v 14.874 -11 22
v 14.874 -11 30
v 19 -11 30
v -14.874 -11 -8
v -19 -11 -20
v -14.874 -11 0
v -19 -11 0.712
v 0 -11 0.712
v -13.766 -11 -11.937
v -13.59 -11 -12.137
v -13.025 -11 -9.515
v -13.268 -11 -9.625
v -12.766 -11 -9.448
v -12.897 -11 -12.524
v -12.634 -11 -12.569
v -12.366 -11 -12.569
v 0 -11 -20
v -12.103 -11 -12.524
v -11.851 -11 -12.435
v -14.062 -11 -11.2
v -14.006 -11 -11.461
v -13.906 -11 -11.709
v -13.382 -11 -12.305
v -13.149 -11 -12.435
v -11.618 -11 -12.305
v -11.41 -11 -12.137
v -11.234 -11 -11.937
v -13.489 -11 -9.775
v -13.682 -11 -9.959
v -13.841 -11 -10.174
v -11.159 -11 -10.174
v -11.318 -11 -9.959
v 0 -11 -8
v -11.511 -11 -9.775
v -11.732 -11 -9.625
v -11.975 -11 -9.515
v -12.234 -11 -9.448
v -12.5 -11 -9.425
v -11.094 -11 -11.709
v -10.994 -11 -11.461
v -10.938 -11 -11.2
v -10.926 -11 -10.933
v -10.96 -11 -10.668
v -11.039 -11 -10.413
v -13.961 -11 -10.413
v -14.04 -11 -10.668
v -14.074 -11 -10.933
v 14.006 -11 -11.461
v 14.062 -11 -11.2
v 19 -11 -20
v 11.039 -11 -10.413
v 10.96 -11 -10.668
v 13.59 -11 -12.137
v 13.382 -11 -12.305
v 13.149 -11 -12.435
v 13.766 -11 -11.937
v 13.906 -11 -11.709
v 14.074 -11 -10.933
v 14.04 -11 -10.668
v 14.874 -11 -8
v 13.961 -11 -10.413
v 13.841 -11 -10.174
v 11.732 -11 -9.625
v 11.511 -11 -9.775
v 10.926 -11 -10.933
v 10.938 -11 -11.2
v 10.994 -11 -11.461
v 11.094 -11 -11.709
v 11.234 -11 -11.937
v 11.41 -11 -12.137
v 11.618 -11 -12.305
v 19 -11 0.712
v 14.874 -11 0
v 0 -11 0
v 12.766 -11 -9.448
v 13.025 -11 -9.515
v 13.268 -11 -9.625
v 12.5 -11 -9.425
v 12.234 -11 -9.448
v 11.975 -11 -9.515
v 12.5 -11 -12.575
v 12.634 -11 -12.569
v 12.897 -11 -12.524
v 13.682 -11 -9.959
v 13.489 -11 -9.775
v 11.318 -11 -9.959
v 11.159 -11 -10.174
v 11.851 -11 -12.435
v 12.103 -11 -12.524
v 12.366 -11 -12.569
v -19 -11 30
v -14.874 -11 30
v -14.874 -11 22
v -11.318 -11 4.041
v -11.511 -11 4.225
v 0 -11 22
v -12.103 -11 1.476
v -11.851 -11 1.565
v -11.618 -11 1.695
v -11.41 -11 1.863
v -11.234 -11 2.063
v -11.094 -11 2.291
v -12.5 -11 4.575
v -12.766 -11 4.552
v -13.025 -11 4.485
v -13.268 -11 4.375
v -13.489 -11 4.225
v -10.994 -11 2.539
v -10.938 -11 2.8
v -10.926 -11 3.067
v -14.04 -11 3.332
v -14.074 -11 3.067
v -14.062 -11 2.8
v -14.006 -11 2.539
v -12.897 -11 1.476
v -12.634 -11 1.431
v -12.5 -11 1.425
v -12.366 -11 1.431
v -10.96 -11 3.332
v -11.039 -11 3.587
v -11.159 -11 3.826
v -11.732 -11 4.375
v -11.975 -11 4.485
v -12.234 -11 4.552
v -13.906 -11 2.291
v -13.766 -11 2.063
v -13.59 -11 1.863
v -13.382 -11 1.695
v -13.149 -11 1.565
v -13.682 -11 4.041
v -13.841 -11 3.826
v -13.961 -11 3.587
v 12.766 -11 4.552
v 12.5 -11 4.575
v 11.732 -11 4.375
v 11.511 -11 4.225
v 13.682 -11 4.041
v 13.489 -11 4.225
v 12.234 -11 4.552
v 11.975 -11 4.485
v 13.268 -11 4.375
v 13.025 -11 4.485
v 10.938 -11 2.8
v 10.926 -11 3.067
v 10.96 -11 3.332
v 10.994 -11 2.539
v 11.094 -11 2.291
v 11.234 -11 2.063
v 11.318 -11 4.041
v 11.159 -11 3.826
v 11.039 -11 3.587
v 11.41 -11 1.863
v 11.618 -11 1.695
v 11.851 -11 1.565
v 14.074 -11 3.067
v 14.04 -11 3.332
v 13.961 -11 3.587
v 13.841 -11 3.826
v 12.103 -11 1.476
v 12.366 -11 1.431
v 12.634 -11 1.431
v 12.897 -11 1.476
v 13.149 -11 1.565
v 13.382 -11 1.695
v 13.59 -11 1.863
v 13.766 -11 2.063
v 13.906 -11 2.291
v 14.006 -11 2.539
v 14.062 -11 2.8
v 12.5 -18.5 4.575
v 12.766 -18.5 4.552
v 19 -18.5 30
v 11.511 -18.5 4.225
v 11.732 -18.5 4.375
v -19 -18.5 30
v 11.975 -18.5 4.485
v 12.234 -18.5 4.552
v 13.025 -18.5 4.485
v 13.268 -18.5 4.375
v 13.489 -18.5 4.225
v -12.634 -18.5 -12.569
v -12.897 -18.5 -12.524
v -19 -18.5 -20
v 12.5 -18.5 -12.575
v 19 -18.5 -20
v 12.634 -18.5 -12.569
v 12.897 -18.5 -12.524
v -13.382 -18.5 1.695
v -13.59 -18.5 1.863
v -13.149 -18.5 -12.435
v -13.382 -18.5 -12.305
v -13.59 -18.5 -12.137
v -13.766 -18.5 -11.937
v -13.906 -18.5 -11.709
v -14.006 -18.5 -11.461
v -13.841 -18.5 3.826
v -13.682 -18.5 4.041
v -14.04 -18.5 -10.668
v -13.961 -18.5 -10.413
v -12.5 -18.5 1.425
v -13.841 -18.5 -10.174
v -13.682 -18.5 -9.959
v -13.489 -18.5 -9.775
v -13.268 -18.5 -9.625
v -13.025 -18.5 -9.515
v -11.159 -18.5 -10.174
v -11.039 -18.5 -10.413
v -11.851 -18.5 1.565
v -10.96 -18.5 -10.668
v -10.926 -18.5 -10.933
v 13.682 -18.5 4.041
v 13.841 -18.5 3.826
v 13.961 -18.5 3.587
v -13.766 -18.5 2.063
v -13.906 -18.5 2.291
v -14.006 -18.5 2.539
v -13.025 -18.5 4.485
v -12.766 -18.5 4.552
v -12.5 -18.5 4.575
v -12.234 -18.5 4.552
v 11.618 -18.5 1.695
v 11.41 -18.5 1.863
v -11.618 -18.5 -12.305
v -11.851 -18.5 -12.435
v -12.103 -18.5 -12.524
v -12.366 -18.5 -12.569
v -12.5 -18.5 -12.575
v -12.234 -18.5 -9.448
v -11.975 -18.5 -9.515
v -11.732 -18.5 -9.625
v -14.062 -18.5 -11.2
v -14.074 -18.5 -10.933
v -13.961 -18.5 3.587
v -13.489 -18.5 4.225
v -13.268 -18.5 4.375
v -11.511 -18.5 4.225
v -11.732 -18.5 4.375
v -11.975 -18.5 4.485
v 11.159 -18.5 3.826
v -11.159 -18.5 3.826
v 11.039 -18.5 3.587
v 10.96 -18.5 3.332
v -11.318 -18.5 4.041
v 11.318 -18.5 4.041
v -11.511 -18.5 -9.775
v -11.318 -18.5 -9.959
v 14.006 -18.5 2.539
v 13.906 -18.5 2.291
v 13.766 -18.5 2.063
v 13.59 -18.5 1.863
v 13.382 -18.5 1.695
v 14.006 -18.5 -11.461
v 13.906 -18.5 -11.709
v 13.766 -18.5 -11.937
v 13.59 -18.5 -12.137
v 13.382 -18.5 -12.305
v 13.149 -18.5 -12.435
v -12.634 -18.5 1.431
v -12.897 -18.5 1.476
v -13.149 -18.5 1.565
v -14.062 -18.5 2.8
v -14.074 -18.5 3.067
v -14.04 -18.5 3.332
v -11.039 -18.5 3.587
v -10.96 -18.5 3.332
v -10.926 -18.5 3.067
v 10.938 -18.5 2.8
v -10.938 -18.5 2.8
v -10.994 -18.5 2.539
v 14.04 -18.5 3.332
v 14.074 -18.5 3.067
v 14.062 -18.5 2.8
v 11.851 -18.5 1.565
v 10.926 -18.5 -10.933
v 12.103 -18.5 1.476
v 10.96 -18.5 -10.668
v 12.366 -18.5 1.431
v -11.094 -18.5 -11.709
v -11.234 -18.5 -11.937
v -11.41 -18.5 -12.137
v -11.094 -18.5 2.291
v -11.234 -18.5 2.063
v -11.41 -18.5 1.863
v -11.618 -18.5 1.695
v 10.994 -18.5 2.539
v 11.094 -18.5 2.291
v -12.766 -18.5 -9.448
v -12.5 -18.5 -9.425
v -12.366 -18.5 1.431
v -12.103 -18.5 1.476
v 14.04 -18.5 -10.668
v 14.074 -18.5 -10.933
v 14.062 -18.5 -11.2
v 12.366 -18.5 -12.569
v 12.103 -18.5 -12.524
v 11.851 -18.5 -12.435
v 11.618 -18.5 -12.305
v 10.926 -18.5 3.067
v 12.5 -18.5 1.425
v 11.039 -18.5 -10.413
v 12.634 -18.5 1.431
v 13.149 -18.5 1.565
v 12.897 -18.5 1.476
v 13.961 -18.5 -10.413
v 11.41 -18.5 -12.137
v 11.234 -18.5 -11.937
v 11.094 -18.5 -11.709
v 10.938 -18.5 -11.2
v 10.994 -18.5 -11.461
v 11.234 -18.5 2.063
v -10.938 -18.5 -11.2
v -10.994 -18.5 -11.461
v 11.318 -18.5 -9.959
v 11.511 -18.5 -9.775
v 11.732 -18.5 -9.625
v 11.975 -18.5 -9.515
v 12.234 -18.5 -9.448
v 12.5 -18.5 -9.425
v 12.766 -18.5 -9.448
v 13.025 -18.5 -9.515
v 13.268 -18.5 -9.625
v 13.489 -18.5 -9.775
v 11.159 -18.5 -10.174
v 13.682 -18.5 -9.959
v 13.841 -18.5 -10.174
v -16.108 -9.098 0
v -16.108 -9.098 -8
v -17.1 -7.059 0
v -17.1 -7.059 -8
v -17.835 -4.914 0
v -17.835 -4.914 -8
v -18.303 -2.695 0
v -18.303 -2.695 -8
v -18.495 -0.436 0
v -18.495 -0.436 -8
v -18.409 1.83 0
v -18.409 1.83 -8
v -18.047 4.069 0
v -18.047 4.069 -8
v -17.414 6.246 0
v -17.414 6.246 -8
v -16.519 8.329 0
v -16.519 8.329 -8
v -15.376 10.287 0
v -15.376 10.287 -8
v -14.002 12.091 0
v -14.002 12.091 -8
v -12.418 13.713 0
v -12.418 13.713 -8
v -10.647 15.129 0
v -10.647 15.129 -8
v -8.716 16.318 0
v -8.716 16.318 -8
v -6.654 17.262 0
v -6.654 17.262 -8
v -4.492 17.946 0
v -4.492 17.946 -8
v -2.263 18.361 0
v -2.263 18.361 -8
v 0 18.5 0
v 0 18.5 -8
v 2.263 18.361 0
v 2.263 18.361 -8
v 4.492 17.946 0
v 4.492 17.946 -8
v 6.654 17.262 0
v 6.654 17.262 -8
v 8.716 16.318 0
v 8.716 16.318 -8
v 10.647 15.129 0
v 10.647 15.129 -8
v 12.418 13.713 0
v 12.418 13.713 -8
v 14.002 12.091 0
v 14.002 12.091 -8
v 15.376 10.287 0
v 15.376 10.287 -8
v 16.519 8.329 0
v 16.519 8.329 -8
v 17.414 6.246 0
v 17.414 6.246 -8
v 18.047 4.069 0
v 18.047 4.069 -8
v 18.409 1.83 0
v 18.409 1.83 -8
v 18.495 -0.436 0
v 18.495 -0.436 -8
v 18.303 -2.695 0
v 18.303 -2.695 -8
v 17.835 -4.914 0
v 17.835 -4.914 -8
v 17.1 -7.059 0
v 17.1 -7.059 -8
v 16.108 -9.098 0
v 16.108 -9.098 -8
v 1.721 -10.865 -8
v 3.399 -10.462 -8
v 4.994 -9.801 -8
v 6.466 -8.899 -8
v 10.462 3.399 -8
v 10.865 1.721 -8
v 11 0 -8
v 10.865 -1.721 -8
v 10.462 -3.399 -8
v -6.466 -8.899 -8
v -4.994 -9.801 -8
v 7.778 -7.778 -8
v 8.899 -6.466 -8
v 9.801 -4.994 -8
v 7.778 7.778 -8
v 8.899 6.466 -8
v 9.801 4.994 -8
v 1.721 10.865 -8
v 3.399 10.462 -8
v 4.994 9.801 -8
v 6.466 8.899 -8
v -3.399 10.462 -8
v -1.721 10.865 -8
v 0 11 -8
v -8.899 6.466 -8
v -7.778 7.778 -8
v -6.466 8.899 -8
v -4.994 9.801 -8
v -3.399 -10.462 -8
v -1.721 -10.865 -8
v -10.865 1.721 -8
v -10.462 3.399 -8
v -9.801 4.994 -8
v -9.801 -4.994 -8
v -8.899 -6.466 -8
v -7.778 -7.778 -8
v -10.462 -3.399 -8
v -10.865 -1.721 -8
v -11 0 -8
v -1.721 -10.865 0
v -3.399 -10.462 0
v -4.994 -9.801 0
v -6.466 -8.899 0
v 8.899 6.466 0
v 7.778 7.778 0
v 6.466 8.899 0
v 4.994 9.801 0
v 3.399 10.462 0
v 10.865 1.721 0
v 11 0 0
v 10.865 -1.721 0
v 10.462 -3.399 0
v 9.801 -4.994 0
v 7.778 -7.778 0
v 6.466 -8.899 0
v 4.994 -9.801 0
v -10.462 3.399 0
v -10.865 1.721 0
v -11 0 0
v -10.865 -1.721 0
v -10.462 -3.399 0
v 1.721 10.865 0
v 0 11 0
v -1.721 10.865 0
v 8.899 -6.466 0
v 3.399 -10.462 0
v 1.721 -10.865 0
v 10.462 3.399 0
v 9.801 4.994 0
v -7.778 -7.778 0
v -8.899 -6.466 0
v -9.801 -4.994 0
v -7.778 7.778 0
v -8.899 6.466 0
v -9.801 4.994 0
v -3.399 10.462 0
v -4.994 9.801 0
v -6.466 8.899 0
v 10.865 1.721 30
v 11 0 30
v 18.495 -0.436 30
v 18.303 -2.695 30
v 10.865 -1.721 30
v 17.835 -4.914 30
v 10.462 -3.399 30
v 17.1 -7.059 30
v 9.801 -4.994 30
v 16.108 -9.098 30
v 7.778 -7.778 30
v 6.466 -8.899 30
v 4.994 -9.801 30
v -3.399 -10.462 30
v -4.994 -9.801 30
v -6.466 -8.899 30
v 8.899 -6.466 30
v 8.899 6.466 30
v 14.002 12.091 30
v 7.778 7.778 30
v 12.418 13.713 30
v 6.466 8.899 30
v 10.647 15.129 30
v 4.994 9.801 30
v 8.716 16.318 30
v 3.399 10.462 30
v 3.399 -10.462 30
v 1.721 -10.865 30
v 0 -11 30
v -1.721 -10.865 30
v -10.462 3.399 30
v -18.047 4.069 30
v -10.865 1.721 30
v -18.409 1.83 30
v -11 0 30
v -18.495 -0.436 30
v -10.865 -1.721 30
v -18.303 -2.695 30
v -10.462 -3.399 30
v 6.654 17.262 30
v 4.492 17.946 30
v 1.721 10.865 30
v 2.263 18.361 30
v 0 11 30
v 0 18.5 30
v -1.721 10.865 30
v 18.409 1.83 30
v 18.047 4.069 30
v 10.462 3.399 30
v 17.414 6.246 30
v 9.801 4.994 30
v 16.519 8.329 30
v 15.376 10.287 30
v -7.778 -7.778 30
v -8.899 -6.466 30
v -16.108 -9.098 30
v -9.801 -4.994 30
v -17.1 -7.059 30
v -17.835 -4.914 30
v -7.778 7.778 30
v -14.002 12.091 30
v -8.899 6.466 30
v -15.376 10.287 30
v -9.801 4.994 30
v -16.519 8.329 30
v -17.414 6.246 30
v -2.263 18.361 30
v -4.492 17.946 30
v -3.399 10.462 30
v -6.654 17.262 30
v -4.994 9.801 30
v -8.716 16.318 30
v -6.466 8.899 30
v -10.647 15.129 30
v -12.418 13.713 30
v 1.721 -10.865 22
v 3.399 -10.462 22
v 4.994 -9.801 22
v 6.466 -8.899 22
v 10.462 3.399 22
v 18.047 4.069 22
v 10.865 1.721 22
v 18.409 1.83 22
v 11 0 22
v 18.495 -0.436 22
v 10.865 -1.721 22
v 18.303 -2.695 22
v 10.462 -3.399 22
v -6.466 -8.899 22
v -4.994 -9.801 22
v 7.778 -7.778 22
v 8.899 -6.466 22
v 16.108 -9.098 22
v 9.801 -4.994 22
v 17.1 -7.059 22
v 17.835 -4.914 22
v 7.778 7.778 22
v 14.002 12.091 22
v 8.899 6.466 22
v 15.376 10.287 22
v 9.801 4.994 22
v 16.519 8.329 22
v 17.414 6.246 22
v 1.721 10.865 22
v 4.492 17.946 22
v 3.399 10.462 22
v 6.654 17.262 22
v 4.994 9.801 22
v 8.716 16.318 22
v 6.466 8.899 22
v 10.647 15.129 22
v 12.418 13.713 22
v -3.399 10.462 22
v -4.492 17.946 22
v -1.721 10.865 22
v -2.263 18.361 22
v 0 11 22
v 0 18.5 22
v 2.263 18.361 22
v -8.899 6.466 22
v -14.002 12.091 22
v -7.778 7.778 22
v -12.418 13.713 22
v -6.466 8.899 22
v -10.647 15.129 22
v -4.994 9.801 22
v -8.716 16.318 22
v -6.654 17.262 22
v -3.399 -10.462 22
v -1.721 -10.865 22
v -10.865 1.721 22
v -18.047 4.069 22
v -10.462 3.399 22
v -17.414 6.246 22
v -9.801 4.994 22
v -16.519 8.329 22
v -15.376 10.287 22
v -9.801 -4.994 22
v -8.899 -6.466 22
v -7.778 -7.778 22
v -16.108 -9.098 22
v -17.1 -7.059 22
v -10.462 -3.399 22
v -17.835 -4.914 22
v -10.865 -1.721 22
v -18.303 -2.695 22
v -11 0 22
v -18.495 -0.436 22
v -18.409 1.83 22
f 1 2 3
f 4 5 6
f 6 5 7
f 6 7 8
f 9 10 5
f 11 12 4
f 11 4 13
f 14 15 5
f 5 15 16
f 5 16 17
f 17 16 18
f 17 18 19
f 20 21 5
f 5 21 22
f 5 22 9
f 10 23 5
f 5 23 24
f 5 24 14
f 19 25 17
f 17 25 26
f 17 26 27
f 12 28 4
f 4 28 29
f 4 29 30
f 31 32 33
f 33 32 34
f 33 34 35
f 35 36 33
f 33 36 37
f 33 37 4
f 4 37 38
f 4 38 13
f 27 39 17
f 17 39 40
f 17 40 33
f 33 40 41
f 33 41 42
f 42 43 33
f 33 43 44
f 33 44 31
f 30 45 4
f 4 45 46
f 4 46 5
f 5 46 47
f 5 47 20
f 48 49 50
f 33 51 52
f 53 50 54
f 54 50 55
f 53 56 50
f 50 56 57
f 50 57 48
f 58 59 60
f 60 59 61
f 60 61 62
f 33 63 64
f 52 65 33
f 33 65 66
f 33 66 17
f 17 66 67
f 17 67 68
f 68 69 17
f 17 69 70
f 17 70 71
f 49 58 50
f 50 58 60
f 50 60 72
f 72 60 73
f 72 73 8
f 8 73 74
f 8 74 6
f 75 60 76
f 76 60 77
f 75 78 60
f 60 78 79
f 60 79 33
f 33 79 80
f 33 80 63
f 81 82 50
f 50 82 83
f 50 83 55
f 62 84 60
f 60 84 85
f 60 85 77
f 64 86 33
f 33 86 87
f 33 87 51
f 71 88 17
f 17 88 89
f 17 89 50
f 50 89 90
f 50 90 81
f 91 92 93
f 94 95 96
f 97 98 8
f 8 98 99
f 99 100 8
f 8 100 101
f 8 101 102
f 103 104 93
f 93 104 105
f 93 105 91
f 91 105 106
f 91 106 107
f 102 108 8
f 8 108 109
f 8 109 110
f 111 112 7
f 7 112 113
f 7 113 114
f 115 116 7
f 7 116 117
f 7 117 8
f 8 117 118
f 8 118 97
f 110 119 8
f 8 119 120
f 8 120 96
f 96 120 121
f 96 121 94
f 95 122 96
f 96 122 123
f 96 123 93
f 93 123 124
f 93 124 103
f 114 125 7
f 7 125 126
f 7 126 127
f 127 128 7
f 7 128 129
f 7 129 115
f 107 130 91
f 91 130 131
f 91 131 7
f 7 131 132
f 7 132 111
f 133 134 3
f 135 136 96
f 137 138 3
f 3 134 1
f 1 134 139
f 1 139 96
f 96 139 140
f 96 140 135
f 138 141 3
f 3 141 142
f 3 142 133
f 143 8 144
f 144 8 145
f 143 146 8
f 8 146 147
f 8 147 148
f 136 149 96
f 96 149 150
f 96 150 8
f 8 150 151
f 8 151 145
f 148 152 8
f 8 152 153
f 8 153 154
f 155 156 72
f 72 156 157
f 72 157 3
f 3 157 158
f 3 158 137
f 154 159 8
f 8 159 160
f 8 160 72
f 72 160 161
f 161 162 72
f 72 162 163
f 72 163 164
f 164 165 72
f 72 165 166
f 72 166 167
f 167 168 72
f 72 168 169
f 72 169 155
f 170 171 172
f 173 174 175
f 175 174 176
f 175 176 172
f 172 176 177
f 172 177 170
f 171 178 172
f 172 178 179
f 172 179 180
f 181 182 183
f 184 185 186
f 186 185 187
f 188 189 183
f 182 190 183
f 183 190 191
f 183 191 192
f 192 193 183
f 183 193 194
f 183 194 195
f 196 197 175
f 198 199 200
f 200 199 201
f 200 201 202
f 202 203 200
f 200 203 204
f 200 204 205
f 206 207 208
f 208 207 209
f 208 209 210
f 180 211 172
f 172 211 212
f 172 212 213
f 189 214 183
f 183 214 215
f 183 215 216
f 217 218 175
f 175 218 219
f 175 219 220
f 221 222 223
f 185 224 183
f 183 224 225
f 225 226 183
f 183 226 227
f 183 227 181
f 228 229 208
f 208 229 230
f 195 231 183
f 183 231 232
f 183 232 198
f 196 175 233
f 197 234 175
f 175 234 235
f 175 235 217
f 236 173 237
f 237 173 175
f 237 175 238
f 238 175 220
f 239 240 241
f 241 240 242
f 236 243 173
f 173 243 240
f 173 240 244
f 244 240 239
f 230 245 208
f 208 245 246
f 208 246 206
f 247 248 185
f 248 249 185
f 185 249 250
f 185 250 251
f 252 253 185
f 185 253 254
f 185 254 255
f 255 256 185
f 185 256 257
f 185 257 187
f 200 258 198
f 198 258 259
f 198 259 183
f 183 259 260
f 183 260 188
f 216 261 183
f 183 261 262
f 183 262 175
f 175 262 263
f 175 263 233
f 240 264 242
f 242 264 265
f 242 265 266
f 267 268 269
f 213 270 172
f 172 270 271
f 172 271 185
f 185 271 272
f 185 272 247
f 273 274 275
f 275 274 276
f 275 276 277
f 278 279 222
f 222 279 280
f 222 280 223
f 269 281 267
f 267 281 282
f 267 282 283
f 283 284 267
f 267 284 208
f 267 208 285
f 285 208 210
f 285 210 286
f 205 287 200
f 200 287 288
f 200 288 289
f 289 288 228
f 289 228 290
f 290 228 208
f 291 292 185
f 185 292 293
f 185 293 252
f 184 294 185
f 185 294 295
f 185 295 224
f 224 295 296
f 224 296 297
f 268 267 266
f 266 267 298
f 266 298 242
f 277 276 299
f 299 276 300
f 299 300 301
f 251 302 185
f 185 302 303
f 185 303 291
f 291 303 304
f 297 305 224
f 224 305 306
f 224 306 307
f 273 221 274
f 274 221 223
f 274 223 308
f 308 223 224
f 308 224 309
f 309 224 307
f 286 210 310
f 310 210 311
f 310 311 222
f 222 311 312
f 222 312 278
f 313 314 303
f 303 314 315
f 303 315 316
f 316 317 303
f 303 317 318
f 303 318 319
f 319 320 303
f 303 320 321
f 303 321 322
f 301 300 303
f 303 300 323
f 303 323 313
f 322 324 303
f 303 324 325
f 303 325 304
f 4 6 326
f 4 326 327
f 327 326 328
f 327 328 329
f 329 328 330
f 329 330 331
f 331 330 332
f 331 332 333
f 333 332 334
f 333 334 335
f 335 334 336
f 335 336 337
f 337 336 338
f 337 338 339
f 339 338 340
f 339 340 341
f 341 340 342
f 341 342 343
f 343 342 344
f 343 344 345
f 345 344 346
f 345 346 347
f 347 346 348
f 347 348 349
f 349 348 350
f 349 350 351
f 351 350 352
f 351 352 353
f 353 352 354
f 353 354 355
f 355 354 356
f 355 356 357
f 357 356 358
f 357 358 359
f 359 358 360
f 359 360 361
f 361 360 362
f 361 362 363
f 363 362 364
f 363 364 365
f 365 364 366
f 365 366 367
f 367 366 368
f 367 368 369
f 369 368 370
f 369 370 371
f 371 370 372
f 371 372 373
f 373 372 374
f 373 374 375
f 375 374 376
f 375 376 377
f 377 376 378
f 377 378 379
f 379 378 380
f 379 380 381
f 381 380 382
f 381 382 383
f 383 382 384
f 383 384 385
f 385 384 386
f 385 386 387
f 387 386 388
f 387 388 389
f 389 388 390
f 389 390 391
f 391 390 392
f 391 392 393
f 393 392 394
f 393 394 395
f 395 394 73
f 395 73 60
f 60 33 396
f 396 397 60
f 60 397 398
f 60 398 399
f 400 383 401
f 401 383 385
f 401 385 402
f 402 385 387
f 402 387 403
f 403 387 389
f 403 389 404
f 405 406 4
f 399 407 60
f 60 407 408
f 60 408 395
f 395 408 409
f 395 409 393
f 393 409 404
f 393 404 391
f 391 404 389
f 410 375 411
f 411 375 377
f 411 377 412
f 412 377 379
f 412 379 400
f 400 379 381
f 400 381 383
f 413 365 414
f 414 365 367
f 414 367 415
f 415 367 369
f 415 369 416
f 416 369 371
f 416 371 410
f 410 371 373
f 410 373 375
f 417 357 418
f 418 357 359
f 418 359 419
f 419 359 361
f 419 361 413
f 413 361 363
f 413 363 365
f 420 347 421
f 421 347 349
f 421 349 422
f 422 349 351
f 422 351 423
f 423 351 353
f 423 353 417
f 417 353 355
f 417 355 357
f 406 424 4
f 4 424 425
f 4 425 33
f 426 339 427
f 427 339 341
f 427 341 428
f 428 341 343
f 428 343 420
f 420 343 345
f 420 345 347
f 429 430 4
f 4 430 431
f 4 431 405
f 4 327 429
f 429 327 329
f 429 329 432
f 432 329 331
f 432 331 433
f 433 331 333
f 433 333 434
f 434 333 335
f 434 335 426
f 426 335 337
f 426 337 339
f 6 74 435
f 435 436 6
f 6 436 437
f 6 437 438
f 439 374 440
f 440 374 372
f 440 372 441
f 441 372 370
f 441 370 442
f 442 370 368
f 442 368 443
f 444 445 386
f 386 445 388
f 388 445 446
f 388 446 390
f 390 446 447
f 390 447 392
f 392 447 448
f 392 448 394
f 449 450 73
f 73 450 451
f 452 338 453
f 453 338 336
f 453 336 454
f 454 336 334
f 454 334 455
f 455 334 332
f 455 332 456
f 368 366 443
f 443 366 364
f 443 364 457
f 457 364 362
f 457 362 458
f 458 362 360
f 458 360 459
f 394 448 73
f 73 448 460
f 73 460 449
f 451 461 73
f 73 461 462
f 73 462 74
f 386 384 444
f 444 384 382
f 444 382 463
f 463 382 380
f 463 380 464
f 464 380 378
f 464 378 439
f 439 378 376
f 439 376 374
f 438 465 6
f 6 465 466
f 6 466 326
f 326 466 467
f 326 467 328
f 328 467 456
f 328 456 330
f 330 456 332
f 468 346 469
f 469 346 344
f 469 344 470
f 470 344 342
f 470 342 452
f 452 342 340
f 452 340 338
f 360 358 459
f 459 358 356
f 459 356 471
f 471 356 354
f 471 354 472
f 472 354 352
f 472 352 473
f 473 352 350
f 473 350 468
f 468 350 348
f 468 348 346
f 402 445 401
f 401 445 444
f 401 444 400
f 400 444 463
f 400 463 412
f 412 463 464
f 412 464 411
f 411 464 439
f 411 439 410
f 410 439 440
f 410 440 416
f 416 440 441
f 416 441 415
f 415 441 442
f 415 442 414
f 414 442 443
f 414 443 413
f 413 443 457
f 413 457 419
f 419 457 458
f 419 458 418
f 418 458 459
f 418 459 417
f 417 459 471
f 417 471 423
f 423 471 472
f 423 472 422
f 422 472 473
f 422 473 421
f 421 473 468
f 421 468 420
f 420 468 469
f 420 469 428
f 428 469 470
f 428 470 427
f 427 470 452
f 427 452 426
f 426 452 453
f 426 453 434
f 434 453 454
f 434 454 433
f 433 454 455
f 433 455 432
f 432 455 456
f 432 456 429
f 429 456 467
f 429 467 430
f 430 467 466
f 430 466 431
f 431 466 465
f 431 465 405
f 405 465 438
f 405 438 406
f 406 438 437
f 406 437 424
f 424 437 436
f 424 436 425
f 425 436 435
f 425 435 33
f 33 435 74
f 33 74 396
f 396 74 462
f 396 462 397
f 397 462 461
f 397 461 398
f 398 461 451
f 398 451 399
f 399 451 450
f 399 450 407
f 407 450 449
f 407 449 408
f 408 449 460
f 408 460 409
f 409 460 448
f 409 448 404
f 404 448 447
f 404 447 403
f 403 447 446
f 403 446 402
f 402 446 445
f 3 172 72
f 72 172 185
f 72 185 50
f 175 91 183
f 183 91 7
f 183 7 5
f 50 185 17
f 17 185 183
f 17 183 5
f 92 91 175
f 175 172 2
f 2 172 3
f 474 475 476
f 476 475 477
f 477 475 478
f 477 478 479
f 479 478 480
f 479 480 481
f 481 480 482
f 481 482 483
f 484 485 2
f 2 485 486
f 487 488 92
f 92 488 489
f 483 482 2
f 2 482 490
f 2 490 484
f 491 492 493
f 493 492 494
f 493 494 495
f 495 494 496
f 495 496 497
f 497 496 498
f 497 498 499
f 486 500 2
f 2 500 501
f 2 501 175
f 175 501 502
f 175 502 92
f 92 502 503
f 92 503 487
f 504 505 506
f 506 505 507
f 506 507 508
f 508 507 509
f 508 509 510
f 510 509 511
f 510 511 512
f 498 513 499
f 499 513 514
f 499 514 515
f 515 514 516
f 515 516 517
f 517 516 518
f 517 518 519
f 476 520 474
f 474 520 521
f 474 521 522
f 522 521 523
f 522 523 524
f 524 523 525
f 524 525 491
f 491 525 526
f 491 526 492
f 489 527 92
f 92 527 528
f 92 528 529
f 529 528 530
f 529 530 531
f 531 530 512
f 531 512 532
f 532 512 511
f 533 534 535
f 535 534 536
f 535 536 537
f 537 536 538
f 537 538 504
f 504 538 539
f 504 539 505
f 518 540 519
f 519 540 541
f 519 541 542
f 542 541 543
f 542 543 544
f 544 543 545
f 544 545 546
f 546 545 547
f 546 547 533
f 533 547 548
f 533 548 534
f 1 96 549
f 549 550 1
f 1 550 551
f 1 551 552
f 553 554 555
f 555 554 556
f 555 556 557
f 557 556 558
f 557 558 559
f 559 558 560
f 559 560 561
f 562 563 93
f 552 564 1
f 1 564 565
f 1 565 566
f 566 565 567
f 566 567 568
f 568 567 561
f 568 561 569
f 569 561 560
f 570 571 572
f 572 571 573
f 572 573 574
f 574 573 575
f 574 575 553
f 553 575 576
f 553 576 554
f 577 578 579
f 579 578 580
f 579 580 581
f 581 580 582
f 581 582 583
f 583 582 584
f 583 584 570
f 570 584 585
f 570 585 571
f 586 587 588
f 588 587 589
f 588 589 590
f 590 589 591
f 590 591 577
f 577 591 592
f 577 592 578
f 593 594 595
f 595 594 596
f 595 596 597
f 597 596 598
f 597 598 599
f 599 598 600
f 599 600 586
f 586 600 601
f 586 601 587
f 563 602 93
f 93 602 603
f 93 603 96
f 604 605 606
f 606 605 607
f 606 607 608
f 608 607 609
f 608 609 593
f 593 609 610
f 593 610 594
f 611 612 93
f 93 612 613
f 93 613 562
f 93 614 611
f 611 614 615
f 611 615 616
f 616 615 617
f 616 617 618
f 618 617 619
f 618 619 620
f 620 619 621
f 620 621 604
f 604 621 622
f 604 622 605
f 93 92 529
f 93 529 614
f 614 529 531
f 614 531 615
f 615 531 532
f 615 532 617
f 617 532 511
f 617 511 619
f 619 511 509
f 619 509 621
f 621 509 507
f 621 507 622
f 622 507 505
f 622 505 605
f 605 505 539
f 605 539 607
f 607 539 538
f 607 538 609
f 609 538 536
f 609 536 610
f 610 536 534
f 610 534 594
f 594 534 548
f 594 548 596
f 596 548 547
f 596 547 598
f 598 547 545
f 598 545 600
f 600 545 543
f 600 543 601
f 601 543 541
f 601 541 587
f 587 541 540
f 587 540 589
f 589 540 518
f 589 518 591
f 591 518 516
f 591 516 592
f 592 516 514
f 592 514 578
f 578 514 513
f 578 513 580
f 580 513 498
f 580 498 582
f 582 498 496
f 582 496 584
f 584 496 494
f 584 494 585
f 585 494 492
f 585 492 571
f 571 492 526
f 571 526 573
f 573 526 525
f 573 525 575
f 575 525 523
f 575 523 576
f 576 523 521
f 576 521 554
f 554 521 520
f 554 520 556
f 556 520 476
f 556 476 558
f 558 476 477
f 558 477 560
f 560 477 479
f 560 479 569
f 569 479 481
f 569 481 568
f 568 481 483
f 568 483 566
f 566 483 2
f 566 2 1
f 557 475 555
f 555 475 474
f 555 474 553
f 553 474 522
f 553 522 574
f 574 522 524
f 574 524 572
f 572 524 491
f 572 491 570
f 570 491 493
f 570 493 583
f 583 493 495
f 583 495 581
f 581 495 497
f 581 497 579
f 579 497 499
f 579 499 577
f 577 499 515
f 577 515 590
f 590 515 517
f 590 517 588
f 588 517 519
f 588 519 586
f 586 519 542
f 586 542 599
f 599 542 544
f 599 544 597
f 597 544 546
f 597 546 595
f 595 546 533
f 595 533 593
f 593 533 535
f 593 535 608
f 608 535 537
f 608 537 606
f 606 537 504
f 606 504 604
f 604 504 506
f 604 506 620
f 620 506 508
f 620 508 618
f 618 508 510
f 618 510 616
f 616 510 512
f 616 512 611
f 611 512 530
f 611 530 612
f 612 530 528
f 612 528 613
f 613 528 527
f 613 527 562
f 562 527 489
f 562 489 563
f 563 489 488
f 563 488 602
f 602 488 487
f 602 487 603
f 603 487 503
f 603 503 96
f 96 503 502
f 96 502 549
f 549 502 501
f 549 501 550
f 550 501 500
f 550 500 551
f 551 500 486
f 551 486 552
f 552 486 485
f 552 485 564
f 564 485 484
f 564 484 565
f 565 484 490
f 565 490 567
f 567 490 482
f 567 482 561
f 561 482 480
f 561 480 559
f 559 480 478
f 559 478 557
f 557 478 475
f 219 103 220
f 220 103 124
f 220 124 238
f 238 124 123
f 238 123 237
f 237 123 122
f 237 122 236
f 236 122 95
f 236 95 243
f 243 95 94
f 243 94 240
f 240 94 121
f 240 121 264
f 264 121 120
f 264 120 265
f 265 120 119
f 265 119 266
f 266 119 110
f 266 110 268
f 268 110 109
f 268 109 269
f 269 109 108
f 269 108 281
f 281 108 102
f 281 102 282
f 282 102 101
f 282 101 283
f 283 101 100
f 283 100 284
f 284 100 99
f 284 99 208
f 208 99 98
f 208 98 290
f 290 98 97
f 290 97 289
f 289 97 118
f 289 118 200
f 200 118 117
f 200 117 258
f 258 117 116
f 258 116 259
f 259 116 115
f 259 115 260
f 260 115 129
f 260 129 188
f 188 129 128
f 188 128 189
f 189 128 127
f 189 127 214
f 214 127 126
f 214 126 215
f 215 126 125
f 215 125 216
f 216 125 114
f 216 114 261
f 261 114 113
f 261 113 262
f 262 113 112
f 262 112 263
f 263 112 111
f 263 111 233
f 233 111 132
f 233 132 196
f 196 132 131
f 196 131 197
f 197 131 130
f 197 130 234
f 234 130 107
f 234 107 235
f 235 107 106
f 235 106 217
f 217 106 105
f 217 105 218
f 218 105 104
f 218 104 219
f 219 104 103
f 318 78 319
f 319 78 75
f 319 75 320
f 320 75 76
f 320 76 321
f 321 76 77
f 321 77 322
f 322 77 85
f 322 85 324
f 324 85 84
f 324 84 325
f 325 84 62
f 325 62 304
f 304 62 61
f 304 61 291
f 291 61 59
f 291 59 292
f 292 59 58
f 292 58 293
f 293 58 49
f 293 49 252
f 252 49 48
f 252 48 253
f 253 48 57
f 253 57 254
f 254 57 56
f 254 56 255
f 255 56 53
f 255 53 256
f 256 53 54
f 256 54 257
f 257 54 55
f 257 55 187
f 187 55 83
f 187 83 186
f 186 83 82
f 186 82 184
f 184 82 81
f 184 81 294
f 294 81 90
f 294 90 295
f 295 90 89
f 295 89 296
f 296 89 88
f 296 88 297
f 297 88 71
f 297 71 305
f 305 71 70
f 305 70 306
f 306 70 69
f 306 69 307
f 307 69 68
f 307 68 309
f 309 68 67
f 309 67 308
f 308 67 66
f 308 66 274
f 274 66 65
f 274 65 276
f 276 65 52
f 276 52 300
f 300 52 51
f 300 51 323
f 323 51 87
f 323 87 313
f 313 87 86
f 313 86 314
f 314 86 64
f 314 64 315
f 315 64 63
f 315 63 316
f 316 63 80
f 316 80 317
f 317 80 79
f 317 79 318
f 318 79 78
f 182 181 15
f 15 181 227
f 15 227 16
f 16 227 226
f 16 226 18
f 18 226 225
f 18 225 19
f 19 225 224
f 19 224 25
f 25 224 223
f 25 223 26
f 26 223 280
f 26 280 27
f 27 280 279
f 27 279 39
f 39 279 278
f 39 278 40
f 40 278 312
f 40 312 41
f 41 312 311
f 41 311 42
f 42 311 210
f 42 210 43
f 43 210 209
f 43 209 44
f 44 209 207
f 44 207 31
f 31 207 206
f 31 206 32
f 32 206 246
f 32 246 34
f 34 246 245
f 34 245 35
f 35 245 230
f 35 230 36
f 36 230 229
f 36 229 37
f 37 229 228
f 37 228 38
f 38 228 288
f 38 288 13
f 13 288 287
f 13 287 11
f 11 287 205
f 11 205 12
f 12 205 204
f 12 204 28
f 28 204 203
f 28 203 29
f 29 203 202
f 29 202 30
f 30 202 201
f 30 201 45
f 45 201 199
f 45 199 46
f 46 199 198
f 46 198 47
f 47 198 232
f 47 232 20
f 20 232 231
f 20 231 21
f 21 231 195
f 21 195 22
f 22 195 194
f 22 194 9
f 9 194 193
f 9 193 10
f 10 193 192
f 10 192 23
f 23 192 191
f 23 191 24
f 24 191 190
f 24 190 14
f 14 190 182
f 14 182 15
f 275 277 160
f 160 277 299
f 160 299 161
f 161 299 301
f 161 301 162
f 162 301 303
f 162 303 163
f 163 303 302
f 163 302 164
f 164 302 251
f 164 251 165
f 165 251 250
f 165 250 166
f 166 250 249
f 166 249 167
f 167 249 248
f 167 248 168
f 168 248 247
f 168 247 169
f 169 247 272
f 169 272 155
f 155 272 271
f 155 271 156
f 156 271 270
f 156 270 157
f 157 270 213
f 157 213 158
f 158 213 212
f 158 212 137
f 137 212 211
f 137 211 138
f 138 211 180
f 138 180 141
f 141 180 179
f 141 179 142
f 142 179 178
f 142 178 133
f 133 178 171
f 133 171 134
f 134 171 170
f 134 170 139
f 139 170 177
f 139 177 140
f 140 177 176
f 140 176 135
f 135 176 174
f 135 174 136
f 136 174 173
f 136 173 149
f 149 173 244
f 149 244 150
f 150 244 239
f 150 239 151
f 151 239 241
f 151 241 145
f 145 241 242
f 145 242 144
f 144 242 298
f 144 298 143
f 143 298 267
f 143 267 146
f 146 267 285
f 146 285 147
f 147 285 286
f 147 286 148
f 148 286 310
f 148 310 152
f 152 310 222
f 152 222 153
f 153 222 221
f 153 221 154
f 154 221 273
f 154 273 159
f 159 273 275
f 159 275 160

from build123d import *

# Parameters (mm, degrees)
ESQUISSE1_R                = 18.5
ESQUISSE1_R_2              = 11
BOSS_EXTRU_19_DEPTH        = 8
BOSS_EXTRU_20_DEPTH        = 30
BOSS_EXTRU_20_DEPTH_BACK   = 20
ESQUISSE1_5_W              = 38
ESQUISSE1_5_H              = 7.5
R_P_TITION_LIN_AIRE1_COUNT = 2
R_P_TITION_LIN_AIRE1_PITCH = 30
ENL_V_MAT_EXTRU_1_REACH    = 48.165
ESQUISSE8_R                = 1.575


with BuildPart() as part:
    # Esquisse1 → Boss.-Extru.19 (new body)
    with BuildSketch(Plane.XY):
        Circle(ESQUISSE1_R)
        Circle(ESQUISSE1_R_2, mode=Mode.SUBTRACT)
    boss_extru_19 = extrude(amount=-BOSS_EXTRU_19_DEPTH)

    # Esquisse1<5> → Boss.-Extru.20 (add, two sides: drawn at the far end of the back side and taken through both)
    with BuildSketch(Plane.XY.offset(-BOSS_EXTRU_20_DEPTH_BACK)):
        with Locations((0, -14.75)):
            Rectangle(ESQUISSE1_5_W, ESQUISSE1_5_H)
    extrude(amount=BOSS_EXTRU_20_DEPTH + BOSS_EXTRU_20_DEPTH_BACK)

    # Répétition linéaire1: Boss.-Extru.19 ×2
    with Locations(*[(0, 0, i * R_P_TITION_LIN_AIRE1_PITCH) for i in range(1, R_P_TITION_LIN_AIRE1_COUNT)]):
        add(boss_extru_19)

    # Esquisse8 → Enlèv. mat.-Extru.1 (cut, up to next)
    with BuildSketch(Plane(origin=(0, -11, 0), x_dir=(1, 0, 0), z_dir=(0, 1, 0)), mode=Mode.PRIVATE) as enl_v_mat_extru_1_sk1:
        with Locations((-12.5, 11)):
            Circle(ESQUISSE8_R)
    enl_v_mat_extru_1_tool1 = extrude(enl_v_mat_extru_1_sk1.sketch, amount=-ENL_V_MAT_EXTRU_1_REACH, mode=Mode.PRIVATE) & part.part
    # Esquisse8 → Enlèv. mat.-Extru.1 (cut, up to next)
    with BuildSketch(Plane(origin=(0, -11, 0), x_dir=(1, 0, 0), z_dir=(0, 1, 0)), mode=Mode.PRIVATE) as enl_v_mat_extru_1_sk2:
        with Locations((12.5, 11)):
            Circle(ESQUISSE8_R)
    enl_v_mat_extru_1_tool2 = extrude(enl_v_mat_extru_1_sk2.sketch, amount=-ENL_V_MAT_EXTRU_1_REACH, mode=Mode.PRIVATE) & part.part
    # Esquisse8 → Enlèv. mat.-Extru.1 (cut, up to next)
    with BuildSketch(Plane(origin=(0, -11, 0), x_dir=(1, 0, 0), z_dir=(0, 1, 0)), mode=Mode.PRIVATE) as enl_v_mat_extru_1_sk3:
        with Locations((12.5, -3)):
            Circle(ESQUISSE8_R)
    enl_v_mat_extru_1_tool3 = extrude(enl_v_mat_extru_1_sk3.sketch, amount=-ENL_V_MAT_EXTRU_1_REACH, mode=Mode.PRIVATE) & part.part
    # Esquisse8 → Enlèv. mat.-Extru.1 (cut, up to next)
    with BuildSketch(Plane(origin=(0, -11, 0), x_dir=(1, 0, 0), z_dir=(0, 1, 0)), mode=Mode.PRIVATE) as enl_v_mat_extru_1_sk4:
        with Locations((-12.5, -3)):
            Circle(ESQUISSE8_R)
    enl_v_mat_extru_1_tool4 = extrude(enl_v_mat_extru_1_sk4.sketch, amount=-ENL_V_MAT_EXTRU_1_REACH, mode=Mode.PRIVATE) & part.part
    add(enl_v_mat_extru_1_tool1.solids().sort_by_distance((-12.5, -11, -11))[0], mode=Mode.SUBTRACT)
    add(enl_v_mat_extru_1_tool2.solids().sort_by_distance((12.5, -11, -11))[0], mode=Mode.SUBTRACT)
    add(enl_v_mat_extru_1_tool3.solids().sort_by_distance((12.5, -11, 3))[0], mode=Mode.SUBTRACT)
    add(enl_v_mat_extru_1_tool4.solids().sort_by_distance((-12.5, -11, 3))[0], mode=Mode.SUBTRACT)


solid = part.part
